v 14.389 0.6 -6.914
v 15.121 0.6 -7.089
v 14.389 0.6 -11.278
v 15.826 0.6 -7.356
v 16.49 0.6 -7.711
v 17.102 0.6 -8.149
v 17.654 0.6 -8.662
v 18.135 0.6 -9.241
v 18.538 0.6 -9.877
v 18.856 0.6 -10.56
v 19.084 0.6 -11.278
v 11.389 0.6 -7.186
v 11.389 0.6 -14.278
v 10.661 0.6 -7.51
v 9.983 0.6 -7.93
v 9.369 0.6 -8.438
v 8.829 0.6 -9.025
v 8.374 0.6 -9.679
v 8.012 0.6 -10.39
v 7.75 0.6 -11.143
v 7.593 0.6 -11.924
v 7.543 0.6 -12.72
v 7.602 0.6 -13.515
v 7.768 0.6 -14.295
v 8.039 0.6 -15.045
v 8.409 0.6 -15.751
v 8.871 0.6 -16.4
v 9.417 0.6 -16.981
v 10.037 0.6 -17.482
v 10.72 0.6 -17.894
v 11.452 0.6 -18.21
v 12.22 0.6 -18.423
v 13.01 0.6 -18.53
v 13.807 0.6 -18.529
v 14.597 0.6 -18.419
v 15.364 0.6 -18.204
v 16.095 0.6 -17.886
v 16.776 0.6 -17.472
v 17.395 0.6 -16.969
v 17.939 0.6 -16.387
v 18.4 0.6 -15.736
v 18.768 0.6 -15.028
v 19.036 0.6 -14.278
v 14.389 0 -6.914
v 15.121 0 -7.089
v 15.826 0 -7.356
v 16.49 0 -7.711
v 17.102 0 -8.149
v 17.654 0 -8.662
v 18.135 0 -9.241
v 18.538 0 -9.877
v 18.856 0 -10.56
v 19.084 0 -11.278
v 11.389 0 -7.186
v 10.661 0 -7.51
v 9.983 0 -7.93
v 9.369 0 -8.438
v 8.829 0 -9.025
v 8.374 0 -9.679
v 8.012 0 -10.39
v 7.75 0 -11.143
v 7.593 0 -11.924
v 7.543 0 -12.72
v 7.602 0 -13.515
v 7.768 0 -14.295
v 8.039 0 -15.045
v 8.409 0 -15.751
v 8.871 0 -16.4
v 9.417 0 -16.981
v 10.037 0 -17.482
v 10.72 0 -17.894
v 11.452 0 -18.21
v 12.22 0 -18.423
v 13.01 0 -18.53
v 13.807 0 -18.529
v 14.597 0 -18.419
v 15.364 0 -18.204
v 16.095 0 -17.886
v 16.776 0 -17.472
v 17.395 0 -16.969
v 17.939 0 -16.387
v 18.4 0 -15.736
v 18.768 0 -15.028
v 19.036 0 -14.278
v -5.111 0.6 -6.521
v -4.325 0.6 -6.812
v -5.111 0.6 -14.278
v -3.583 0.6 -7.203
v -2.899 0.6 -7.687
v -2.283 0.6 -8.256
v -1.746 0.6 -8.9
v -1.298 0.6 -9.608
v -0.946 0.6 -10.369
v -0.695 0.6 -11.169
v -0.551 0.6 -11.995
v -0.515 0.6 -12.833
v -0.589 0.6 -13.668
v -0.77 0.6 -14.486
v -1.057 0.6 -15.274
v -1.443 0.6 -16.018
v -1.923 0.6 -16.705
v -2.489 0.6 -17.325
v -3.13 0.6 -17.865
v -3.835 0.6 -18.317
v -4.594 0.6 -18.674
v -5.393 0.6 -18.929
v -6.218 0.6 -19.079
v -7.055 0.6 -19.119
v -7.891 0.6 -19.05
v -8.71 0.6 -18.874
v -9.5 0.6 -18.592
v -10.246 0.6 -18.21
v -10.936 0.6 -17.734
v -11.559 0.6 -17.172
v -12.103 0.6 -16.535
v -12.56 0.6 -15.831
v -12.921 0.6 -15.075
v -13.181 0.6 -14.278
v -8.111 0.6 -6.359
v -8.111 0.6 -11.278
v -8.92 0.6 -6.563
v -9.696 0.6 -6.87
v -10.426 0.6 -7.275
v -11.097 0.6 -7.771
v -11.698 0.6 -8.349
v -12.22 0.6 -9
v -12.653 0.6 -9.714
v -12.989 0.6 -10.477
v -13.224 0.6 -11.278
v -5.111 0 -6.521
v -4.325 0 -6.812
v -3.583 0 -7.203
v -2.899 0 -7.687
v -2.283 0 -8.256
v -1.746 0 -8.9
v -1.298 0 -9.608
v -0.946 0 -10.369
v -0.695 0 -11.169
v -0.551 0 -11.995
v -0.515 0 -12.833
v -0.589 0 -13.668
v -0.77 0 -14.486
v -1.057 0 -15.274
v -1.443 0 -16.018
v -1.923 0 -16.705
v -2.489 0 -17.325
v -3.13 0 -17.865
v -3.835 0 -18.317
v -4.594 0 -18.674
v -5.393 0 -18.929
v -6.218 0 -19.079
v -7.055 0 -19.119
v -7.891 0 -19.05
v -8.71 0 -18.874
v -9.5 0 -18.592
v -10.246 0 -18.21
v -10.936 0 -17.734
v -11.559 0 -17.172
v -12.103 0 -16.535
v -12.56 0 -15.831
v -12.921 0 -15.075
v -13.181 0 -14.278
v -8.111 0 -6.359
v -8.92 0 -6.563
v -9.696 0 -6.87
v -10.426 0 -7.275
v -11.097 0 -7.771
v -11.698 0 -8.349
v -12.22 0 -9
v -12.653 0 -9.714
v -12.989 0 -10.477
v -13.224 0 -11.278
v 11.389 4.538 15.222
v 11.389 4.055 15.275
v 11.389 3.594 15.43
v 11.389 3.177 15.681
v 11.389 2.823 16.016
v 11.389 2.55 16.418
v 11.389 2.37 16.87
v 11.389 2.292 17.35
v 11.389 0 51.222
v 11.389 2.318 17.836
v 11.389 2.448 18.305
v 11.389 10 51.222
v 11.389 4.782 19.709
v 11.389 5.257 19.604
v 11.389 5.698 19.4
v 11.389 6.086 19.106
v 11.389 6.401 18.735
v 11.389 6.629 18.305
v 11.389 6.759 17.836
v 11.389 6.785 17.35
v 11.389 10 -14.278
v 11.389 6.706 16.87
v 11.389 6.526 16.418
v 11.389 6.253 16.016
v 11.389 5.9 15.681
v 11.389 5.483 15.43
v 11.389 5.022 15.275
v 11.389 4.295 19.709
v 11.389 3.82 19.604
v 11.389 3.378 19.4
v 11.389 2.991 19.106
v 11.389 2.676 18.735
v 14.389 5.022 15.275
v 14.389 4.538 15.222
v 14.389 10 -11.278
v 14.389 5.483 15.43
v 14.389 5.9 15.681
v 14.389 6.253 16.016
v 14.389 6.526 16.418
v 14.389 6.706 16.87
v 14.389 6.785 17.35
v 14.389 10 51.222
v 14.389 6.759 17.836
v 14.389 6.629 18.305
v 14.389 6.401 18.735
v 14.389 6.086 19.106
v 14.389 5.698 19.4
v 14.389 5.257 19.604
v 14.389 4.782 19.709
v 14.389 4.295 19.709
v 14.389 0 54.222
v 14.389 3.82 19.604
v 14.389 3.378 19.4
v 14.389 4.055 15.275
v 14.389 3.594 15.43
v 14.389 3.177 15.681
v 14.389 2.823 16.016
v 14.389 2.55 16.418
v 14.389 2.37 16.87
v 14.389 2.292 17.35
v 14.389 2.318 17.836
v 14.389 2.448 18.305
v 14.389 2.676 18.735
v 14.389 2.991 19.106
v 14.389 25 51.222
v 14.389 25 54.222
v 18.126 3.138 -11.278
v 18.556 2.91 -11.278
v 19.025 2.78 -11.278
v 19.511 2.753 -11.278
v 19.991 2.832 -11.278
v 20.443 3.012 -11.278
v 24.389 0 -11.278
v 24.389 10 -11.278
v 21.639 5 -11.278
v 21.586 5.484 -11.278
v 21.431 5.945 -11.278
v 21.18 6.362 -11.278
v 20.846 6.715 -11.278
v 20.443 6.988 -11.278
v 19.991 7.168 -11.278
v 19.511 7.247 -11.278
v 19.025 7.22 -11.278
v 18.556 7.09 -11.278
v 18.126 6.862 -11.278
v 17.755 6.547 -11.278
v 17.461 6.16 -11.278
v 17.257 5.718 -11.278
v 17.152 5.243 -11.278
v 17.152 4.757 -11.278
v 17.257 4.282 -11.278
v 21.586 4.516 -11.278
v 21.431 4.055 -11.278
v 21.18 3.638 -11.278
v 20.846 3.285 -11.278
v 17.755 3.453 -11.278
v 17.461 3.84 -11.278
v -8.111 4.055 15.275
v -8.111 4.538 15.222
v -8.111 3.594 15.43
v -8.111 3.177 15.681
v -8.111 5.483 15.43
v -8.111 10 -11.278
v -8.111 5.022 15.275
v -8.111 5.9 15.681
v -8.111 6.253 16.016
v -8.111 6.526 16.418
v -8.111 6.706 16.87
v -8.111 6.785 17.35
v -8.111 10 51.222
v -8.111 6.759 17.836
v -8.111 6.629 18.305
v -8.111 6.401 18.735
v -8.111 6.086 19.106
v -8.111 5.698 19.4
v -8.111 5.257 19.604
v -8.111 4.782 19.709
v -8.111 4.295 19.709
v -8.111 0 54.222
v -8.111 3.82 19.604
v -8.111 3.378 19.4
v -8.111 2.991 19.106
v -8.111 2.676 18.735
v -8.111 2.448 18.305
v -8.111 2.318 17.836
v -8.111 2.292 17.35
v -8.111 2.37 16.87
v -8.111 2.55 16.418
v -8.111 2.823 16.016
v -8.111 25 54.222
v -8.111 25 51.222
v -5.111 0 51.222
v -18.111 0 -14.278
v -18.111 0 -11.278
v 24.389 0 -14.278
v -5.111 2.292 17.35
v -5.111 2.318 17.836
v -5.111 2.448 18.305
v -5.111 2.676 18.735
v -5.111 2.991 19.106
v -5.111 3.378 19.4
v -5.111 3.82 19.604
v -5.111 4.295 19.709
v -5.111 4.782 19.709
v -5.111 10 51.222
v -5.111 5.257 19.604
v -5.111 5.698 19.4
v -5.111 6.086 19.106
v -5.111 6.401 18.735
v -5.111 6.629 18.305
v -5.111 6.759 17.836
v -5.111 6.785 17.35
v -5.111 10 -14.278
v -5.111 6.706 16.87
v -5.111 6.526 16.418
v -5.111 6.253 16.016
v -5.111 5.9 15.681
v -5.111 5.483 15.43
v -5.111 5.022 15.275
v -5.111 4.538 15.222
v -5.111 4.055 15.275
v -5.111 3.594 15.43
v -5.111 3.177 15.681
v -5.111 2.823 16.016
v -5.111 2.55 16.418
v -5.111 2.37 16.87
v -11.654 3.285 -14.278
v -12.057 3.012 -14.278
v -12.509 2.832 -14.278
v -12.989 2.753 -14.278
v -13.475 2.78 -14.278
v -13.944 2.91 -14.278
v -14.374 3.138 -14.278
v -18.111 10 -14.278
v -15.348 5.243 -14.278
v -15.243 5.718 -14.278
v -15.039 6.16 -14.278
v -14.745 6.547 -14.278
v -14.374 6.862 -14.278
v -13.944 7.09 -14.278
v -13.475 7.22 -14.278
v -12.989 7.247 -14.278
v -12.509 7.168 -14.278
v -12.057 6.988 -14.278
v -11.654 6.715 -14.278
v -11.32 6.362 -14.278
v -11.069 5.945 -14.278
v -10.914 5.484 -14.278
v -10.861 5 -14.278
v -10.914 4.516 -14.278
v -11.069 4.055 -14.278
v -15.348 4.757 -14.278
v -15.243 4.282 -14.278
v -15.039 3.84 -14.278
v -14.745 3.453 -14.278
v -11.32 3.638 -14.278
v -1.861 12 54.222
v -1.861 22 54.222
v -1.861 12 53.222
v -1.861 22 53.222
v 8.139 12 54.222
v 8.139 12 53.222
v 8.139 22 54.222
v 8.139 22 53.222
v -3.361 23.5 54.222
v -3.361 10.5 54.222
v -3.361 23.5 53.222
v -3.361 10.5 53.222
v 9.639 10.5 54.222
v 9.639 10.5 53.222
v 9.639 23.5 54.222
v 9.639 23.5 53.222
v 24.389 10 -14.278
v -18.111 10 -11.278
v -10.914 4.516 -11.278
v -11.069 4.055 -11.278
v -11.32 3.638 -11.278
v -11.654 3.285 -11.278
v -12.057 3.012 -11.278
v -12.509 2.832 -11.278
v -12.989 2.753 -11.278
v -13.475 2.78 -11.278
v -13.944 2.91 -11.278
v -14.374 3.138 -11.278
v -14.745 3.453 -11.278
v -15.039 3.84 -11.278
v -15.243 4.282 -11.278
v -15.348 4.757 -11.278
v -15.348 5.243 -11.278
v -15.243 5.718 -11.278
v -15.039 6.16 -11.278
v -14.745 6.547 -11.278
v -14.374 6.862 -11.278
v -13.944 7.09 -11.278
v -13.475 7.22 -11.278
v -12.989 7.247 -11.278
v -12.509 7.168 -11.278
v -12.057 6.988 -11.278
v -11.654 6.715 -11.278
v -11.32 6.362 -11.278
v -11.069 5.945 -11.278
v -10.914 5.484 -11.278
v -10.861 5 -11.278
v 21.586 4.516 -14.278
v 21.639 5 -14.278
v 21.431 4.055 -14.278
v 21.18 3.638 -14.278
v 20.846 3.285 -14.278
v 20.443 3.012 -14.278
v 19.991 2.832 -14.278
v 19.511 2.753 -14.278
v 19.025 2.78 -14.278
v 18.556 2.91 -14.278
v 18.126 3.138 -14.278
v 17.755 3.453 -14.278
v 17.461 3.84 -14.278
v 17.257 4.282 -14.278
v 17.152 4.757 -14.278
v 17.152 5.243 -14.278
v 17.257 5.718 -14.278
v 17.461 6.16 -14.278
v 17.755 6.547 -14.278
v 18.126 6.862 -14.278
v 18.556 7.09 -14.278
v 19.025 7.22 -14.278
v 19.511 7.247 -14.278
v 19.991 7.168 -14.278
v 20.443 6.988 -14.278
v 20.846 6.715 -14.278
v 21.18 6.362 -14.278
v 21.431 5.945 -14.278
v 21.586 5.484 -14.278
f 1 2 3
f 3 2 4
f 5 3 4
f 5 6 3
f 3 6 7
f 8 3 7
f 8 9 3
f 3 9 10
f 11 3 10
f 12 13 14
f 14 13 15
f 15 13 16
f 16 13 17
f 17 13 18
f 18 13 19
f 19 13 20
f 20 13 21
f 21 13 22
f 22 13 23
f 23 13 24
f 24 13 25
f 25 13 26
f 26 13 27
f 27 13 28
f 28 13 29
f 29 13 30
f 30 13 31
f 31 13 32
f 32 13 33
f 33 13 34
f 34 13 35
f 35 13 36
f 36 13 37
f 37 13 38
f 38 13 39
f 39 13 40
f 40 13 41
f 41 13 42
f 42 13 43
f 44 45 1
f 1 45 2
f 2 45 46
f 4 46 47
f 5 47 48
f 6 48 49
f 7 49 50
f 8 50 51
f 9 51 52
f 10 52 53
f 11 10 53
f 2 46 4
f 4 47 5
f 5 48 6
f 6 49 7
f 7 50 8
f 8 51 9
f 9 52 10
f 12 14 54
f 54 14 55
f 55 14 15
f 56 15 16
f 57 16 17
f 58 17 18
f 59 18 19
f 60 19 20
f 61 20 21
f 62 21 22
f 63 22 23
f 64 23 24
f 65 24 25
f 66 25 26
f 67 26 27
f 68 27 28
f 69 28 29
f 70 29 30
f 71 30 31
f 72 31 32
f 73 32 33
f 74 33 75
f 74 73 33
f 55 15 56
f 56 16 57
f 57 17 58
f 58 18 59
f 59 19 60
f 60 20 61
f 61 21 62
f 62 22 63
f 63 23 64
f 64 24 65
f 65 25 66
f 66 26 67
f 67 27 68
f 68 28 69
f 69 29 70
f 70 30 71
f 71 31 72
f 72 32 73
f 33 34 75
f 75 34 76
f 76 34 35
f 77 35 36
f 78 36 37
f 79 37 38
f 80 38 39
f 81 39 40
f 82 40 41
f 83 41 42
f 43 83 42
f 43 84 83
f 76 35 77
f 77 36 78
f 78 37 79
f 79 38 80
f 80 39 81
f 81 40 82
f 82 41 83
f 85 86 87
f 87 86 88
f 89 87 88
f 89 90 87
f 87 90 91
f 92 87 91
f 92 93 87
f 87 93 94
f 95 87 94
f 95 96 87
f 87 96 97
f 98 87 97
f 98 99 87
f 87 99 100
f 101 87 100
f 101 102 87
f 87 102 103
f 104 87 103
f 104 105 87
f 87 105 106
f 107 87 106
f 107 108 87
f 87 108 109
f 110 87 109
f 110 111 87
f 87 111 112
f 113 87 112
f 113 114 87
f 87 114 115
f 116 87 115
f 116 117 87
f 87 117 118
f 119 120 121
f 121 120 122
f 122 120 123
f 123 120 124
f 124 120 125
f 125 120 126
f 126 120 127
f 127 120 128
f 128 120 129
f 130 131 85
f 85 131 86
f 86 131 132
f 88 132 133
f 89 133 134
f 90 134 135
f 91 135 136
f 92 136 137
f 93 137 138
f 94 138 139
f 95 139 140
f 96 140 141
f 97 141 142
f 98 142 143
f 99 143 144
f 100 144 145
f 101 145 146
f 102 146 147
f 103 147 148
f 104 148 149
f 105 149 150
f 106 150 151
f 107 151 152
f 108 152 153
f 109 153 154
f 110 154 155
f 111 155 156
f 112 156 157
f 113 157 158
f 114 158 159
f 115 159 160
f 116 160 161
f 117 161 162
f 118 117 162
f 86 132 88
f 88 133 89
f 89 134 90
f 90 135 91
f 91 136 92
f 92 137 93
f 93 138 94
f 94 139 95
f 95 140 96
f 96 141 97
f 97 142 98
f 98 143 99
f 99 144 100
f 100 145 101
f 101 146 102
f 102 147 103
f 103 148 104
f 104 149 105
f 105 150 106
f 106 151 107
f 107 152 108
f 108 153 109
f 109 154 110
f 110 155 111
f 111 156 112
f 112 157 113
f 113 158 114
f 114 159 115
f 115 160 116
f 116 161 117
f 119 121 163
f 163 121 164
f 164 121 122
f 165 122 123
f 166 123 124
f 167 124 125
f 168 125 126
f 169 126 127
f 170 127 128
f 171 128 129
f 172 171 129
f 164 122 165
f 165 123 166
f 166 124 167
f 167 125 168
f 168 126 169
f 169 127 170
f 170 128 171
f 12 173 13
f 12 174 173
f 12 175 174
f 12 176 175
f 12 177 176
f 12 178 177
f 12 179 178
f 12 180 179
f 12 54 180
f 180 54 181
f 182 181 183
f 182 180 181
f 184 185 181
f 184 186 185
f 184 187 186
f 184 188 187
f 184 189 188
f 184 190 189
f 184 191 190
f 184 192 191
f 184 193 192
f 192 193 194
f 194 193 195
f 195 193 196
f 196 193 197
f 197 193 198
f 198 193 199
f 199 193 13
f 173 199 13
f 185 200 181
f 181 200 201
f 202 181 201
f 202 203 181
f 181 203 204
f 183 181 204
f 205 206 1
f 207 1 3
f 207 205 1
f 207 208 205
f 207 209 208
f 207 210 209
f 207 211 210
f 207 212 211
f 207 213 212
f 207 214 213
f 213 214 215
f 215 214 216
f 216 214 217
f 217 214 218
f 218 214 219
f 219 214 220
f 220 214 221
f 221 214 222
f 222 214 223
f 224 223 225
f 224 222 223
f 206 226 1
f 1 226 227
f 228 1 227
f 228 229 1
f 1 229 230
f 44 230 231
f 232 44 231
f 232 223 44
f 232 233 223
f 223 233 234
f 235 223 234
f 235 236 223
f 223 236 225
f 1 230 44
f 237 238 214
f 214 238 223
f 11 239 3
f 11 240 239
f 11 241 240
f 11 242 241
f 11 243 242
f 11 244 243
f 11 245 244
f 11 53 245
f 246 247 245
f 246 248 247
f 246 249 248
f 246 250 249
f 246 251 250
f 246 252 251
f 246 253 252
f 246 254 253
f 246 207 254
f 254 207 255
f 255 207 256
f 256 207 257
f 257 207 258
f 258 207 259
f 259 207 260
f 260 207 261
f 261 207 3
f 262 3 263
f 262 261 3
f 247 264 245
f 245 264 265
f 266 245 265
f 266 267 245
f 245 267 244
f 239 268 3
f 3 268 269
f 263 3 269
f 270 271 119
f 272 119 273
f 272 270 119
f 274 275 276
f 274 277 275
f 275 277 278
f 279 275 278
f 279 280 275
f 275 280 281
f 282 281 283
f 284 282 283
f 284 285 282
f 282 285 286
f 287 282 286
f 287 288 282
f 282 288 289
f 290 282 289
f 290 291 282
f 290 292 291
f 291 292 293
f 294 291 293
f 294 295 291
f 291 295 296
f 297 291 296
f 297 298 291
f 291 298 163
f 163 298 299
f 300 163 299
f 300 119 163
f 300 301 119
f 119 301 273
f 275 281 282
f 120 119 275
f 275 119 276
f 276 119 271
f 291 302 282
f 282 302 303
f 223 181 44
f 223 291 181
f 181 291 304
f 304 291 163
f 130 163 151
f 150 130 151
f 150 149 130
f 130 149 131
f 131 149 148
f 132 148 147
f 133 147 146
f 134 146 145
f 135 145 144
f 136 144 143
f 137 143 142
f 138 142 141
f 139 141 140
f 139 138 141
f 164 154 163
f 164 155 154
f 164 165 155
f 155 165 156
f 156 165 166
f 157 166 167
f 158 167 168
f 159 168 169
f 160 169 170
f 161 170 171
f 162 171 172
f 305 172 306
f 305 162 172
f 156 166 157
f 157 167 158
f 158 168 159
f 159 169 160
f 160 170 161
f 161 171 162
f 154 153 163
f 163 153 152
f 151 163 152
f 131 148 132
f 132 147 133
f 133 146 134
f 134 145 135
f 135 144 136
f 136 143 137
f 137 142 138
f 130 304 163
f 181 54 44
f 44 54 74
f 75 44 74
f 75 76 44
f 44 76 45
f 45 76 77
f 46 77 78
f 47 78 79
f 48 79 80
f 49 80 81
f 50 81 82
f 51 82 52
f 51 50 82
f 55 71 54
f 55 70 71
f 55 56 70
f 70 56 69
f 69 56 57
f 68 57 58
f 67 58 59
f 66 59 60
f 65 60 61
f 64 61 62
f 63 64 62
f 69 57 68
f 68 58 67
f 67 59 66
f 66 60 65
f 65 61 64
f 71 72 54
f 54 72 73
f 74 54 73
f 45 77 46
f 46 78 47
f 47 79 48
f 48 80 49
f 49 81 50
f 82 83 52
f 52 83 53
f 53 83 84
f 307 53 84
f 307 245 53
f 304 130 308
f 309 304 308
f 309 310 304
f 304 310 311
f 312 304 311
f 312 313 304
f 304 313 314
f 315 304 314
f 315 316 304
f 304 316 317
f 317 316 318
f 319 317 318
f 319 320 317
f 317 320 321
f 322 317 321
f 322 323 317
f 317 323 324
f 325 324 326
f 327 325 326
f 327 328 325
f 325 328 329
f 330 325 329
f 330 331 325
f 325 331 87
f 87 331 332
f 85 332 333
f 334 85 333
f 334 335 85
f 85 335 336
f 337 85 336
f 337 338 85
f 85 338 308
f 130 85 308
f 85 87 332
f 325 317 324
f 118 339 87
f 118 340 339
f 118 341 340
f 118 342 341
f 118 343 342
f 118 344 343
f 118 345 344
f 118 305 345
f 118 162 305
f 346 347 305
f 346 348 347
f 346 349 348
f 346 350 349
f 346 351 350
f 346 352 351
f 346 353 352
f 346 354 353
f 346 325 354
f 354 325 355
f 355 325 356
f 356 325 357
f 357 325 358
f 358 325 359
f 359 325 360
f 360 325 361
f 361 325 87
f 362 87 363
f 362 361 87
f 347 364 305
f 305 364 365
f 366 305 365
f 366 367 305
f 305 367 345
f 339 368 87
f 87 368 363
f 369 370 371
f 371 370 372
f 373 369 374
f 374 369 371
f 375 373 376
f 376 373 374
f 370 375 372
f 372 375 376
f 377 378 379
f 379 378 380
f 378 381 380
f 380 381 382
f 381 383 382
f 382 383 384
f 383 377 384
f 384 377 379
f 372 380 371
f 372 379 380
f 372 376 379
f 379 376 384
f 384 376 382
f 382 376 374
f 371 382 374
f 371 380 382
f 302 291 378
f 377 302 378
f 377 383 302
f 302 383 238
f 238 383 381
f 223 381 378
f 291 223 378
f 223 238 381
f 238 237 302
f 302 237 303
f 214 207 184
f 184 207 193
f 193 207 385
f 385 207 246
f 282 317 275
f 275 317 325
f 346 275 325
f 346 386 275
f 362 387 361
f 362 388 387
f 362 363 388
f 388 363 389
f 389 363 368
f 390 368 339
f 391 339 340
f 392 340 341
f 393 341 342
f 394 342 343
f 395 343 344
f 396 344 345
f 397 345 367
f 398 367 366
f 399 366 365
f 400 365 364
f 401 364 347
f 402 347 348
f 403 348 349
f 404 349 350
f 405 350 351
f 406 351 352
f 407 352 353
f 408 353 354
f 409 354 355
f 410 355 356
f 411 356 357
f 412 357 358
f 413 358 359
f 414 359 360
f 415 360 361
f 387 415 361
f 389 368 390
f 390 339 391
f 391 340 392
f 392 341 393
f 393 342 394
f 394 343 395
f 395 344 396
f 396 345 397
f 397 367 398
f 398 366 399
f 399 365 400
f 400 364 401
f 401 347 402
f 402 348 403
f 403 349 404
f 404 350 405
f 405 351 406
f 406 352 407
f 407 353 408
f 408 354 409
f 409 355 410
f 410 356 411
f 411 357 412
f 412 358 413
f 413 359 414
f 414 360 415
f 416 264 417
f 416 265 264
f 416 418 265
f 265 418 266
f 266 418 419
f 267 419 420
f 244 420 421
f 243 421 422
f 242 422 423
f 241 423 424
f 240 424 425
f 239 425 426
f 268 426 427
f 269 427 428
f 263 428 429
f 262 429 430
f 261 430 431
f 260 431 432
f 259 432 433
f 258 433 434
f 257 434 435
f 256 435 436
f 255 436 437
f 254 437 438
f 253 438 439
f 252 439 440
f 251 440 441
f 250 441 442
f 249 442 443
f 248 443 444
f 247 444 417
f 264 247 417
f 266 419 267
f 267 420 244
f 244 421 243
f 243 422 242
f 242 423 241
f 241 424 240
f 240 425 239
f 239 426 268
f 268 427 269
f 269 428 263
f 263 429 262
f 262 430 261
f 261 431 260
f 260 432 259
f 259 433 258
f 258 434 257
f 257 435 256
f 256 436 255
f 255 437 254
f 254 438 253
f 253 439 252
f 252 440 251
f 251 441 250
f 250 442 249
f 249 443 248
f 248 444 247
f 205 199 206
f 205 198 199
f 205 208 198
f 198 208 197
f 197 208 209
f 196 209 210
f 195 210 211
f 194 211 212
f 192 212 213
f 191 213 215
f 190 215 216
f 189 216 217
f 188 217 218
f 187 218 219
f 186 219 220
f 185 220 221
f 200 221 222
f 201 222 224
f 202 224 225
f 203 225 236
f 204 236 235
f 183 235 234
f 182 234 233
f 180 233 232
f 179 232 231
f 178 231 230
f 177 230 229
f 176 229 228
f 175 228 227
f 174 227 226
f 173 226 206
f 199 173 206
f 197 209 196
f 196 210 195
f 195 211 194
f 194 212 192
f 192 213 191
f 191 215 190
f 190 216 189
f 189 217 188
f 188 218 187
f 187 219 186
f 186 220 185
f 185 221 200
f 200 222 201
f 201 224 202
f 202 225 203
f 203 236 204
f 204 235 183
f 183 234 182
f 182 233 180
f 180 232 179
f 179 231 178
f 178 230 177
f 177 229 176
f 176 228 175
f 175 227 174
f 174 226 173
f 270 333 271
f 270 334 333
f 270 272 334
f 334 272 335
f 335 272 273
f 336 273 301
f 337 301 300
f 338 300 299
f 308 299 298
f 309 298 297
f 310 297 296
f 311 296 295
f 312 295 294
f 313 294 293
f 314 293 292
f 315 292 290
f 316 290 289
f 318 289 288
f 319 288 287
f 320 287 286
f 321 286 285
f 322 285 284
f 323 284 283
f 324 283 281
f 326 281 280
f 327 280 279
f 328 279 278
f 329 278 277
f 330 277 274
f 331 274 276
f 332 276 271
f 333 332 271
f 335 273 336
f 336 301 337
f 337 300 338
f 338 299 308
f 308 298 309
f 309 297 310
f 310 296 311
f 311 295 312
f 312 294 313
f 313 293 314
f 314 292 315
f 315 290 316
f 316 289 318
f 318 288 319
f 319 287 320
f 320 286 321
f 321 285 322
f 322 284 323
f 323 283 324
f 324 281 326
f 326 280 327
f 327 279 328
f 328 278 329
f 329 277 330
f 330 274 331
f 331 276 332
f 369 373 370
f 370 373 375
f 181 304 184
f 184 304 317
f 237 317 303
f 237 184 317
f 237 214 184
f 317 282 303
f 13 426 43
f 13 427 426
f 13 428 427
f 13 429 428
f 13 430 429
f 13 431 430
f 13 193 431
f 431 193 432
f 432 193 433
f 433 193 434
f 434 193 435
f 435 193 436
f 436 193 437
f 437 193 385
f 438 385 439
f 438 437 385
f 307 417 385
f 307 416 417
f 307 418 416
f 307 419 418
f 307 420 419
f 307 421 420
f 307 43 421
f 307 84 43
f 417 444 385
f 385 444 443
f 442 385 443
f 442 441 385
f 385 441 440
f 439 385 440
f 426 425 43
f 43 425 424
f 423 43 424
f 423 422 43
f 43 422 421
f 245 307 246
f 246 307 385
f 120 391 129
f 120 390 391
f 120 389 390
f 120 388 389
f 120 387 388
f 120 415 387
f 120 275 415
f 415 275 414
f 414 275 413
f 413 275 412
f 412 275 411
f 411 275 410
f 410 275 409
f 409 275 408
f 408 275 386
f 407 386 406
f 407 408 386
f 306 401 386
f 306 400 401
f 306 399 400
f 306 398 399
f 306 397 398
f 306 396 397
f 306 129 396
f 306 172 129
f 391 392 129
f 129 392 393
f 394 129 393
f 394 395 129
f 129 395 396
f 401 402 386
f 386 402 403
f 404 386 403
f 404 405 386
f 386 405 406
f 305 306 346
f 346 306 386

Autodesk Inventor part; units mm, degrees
ref_plane "YZ Plane" through (0, 0, 0) normal (1, 0, 0) x (0, 1, 0)
ref_plane "XZ Plane" through (0, 0, 0) normal (0, 1, 0) x (-1, 0, 0)
ref_plane "XY Plane" through (0, 0, 0) normal (0, 0, 1) x (1, 0, 0)
sketch "Sketch1" plane through (0, 0, 0) normal (0, 1, 0) x (-1, 0, 0)
  line L0 (-14.3889, -14.2778) -> (-11.3889, -14.2778)
  line L1 (-11.3889, -14.2778) -> (-11.3889, 54.2222)
  line L2 (-11.3889, 54.2222) -> (-14.3889, 54.2222)
  line L3 (-14.3889, 54.2222) -> (-14.3889, -14.2778)
  line L4 (-11.3889, 54.2222) -> (5.1111, 54.2222)
  line L5 (5.1111, 54.2222) -> (5.1111, 51.2222)
  line L6 (5.1111, 51.2222) -> (-11.3889, 51.2222)
  line L7 (-11.3889, 51.2222) -> (-11.3889, 54.2222)
  line L8 (5.1111, 54.2222) -> (8.1111, 54.2222)
  line L9 (8.1111, 54.2222) -> (8.1111, -14.2778)
  line L10 (8.1111, -14.2778) -> (5.1111, -14.2778)
  line L11 (5.1111, -14.2778) -> (5.1111, 54.2222)
  line L12 (8.1111, -14.2778) -> (18.1111, -14.2778)
  line L13 (18.1111, -14.2778) -> (18.1111, -11.2778)
  line L14 (18.1111, -11.2778) -> (8.1111, -11.2778)
  line L15 (8.1111, -11.2778) -> (8.1111, -14.2778)
  line L16 (-14.3889, -14.2778) -> (-24.3889, -14.2778)
  line L17 (-24.3889, -14.2778) -> (-24.3889, -11.2778)
  line L18 (-24.3889, -11.2778) -> (-14.3889, -11.2778)
  line L19 (-14.3889, -11.2778) -> (-14.3889, -14.2778)
  line L20 (-14.3889, 54.2222) -> (8.1111, 54.2222)
  line L21 (8.1111, 54.2222) -> (8.1111, 51.2222)
  line L22 (8.1111, 51.2222) -> (-14.3889, 51.2222)
  line L23 (-14.3889, 51.2222) -> (-14.3889, 54.2222)
  point P0 (0, 0)
  dimension "d0" = 10
  dimension "d1" = 10
  dimension "d2" = 3
  dimension "d3" = 3
  dimension "d4" = 3
  dimension "d5" = 3
  dimension "d6" = 3
  dimension "d7" = 68.5
  dimension "d8" = 16.5
extrude "Extrusion1" add sketch "Sketch1" along normal blind 10
sketch "Sketch2" plane through (14.3889, 0, 54.2222) normal (1, 0, 0) x (0, 0, -1)
  line L0 (0, 10) -> (65.5, 10) projected
  line L1 (0, 0) -> (65.5, 0) projected
  line L2 (31.75, 14.4261) -> (31.75, -5.3494)
  line L3 (68.5, 0) -> (68.5, 10) projected
  circle A0 centre (36.75, 4.5383) radius 2.25
  line L4 (31.75, 4.5383) -> (48.4854, 4.5383)
  point P0 (54.2222, 0)
  dimension "d11" = 36.75
  dimension "d12" = 4.5
  dimension "d13" = 5
extrude "Extrusion2" cut sketch "Sketch2" against normal blind 40
sketch "Sketch3" plane through (14.3889, 0, -11.2778) normal (0, 0, 1) x (1, 0, 0)
  circle A0 centre (5, 5) radius 2.25
  point P0 (-14.3889, 0)
  dimension "d16" = 4.5
extrude "Extrusion3" cut sketch "Sketch3" against normal blind 3
sketch "Sketch4" plane through (-18.1111, 0, -11.2778) normal (0, 0, 1) x (1, 0, 0)
  circle A0 centre (5, 5) radius 2.25
  point P0 (18.1111, 0)
  dimension "d19" = 4.5
extrude "Extrusion4" cut sketch "Sketch4" against normal blind 3
extrude "Extrusion5" add sketch "Sketch1" along normal blind 25 contours L22 L3 L2 L1 | L1 L4 L5 L6 | L5 L8 L9 L22
sketch "Sketch5" plane through (-8.1111, 0, 54.2222) normal (0, 0, 1) x (1, 0, 0)
  line L0 (0, 25) -> (22.5, 25) projected
  line L1 (0, 0) -> (0, 25) projected
  circle A0 centre (27.5, 5) radius 2.25 projected
  line L2 (5.9472, 17) -> (15.4403, 17) construction
  line L3 (6.25, 22) -> (16.25, 22)
  line L4 (16.25, 22) -> (16.25, 12)
  line L5 (16.25, 12) -> (6.25, 12)
  line L6 (6.25, 12) -> (6.25, 22)
  line L7 (17.75, 23.5) -> (4.75, 23.5)
  line L8 (4.75, 23.5) -> (4.75, 10.5)
  line L9 (4.75, 10.5) -> (17.75, 10.5)
  line L10 (17.75, 10.5) -> (17.75, 23.5)
  point P0 (8.1111, 0)
  point P1 (11.25, 22)
  point P2 (11.25, 25)
  point P3 (16.25, 17)
  dimension "d24" = 12
  dimension "d25" = 10
  dimension "d26" = 10
  dimension "d27" = 1.5
extrude "Extrusion6" cut sketch "Sketch5" against normal blind 1 contours L10 L9 L8 L7
sketch "Sketch6" plane through (0, 0, 0) normal (0, 1, 0) x (-1, 0, 0)
  circle A0 centre (-13.3996, -12.6866) radius 5.8565
  circle A1 centre (6.9471, -12.6866) radius 6.4335
  point P0 (0, 0)
extrude "Extrusion7" add sketch "Sketch6" along normal blind 0.6
properties part number "BarClip"
